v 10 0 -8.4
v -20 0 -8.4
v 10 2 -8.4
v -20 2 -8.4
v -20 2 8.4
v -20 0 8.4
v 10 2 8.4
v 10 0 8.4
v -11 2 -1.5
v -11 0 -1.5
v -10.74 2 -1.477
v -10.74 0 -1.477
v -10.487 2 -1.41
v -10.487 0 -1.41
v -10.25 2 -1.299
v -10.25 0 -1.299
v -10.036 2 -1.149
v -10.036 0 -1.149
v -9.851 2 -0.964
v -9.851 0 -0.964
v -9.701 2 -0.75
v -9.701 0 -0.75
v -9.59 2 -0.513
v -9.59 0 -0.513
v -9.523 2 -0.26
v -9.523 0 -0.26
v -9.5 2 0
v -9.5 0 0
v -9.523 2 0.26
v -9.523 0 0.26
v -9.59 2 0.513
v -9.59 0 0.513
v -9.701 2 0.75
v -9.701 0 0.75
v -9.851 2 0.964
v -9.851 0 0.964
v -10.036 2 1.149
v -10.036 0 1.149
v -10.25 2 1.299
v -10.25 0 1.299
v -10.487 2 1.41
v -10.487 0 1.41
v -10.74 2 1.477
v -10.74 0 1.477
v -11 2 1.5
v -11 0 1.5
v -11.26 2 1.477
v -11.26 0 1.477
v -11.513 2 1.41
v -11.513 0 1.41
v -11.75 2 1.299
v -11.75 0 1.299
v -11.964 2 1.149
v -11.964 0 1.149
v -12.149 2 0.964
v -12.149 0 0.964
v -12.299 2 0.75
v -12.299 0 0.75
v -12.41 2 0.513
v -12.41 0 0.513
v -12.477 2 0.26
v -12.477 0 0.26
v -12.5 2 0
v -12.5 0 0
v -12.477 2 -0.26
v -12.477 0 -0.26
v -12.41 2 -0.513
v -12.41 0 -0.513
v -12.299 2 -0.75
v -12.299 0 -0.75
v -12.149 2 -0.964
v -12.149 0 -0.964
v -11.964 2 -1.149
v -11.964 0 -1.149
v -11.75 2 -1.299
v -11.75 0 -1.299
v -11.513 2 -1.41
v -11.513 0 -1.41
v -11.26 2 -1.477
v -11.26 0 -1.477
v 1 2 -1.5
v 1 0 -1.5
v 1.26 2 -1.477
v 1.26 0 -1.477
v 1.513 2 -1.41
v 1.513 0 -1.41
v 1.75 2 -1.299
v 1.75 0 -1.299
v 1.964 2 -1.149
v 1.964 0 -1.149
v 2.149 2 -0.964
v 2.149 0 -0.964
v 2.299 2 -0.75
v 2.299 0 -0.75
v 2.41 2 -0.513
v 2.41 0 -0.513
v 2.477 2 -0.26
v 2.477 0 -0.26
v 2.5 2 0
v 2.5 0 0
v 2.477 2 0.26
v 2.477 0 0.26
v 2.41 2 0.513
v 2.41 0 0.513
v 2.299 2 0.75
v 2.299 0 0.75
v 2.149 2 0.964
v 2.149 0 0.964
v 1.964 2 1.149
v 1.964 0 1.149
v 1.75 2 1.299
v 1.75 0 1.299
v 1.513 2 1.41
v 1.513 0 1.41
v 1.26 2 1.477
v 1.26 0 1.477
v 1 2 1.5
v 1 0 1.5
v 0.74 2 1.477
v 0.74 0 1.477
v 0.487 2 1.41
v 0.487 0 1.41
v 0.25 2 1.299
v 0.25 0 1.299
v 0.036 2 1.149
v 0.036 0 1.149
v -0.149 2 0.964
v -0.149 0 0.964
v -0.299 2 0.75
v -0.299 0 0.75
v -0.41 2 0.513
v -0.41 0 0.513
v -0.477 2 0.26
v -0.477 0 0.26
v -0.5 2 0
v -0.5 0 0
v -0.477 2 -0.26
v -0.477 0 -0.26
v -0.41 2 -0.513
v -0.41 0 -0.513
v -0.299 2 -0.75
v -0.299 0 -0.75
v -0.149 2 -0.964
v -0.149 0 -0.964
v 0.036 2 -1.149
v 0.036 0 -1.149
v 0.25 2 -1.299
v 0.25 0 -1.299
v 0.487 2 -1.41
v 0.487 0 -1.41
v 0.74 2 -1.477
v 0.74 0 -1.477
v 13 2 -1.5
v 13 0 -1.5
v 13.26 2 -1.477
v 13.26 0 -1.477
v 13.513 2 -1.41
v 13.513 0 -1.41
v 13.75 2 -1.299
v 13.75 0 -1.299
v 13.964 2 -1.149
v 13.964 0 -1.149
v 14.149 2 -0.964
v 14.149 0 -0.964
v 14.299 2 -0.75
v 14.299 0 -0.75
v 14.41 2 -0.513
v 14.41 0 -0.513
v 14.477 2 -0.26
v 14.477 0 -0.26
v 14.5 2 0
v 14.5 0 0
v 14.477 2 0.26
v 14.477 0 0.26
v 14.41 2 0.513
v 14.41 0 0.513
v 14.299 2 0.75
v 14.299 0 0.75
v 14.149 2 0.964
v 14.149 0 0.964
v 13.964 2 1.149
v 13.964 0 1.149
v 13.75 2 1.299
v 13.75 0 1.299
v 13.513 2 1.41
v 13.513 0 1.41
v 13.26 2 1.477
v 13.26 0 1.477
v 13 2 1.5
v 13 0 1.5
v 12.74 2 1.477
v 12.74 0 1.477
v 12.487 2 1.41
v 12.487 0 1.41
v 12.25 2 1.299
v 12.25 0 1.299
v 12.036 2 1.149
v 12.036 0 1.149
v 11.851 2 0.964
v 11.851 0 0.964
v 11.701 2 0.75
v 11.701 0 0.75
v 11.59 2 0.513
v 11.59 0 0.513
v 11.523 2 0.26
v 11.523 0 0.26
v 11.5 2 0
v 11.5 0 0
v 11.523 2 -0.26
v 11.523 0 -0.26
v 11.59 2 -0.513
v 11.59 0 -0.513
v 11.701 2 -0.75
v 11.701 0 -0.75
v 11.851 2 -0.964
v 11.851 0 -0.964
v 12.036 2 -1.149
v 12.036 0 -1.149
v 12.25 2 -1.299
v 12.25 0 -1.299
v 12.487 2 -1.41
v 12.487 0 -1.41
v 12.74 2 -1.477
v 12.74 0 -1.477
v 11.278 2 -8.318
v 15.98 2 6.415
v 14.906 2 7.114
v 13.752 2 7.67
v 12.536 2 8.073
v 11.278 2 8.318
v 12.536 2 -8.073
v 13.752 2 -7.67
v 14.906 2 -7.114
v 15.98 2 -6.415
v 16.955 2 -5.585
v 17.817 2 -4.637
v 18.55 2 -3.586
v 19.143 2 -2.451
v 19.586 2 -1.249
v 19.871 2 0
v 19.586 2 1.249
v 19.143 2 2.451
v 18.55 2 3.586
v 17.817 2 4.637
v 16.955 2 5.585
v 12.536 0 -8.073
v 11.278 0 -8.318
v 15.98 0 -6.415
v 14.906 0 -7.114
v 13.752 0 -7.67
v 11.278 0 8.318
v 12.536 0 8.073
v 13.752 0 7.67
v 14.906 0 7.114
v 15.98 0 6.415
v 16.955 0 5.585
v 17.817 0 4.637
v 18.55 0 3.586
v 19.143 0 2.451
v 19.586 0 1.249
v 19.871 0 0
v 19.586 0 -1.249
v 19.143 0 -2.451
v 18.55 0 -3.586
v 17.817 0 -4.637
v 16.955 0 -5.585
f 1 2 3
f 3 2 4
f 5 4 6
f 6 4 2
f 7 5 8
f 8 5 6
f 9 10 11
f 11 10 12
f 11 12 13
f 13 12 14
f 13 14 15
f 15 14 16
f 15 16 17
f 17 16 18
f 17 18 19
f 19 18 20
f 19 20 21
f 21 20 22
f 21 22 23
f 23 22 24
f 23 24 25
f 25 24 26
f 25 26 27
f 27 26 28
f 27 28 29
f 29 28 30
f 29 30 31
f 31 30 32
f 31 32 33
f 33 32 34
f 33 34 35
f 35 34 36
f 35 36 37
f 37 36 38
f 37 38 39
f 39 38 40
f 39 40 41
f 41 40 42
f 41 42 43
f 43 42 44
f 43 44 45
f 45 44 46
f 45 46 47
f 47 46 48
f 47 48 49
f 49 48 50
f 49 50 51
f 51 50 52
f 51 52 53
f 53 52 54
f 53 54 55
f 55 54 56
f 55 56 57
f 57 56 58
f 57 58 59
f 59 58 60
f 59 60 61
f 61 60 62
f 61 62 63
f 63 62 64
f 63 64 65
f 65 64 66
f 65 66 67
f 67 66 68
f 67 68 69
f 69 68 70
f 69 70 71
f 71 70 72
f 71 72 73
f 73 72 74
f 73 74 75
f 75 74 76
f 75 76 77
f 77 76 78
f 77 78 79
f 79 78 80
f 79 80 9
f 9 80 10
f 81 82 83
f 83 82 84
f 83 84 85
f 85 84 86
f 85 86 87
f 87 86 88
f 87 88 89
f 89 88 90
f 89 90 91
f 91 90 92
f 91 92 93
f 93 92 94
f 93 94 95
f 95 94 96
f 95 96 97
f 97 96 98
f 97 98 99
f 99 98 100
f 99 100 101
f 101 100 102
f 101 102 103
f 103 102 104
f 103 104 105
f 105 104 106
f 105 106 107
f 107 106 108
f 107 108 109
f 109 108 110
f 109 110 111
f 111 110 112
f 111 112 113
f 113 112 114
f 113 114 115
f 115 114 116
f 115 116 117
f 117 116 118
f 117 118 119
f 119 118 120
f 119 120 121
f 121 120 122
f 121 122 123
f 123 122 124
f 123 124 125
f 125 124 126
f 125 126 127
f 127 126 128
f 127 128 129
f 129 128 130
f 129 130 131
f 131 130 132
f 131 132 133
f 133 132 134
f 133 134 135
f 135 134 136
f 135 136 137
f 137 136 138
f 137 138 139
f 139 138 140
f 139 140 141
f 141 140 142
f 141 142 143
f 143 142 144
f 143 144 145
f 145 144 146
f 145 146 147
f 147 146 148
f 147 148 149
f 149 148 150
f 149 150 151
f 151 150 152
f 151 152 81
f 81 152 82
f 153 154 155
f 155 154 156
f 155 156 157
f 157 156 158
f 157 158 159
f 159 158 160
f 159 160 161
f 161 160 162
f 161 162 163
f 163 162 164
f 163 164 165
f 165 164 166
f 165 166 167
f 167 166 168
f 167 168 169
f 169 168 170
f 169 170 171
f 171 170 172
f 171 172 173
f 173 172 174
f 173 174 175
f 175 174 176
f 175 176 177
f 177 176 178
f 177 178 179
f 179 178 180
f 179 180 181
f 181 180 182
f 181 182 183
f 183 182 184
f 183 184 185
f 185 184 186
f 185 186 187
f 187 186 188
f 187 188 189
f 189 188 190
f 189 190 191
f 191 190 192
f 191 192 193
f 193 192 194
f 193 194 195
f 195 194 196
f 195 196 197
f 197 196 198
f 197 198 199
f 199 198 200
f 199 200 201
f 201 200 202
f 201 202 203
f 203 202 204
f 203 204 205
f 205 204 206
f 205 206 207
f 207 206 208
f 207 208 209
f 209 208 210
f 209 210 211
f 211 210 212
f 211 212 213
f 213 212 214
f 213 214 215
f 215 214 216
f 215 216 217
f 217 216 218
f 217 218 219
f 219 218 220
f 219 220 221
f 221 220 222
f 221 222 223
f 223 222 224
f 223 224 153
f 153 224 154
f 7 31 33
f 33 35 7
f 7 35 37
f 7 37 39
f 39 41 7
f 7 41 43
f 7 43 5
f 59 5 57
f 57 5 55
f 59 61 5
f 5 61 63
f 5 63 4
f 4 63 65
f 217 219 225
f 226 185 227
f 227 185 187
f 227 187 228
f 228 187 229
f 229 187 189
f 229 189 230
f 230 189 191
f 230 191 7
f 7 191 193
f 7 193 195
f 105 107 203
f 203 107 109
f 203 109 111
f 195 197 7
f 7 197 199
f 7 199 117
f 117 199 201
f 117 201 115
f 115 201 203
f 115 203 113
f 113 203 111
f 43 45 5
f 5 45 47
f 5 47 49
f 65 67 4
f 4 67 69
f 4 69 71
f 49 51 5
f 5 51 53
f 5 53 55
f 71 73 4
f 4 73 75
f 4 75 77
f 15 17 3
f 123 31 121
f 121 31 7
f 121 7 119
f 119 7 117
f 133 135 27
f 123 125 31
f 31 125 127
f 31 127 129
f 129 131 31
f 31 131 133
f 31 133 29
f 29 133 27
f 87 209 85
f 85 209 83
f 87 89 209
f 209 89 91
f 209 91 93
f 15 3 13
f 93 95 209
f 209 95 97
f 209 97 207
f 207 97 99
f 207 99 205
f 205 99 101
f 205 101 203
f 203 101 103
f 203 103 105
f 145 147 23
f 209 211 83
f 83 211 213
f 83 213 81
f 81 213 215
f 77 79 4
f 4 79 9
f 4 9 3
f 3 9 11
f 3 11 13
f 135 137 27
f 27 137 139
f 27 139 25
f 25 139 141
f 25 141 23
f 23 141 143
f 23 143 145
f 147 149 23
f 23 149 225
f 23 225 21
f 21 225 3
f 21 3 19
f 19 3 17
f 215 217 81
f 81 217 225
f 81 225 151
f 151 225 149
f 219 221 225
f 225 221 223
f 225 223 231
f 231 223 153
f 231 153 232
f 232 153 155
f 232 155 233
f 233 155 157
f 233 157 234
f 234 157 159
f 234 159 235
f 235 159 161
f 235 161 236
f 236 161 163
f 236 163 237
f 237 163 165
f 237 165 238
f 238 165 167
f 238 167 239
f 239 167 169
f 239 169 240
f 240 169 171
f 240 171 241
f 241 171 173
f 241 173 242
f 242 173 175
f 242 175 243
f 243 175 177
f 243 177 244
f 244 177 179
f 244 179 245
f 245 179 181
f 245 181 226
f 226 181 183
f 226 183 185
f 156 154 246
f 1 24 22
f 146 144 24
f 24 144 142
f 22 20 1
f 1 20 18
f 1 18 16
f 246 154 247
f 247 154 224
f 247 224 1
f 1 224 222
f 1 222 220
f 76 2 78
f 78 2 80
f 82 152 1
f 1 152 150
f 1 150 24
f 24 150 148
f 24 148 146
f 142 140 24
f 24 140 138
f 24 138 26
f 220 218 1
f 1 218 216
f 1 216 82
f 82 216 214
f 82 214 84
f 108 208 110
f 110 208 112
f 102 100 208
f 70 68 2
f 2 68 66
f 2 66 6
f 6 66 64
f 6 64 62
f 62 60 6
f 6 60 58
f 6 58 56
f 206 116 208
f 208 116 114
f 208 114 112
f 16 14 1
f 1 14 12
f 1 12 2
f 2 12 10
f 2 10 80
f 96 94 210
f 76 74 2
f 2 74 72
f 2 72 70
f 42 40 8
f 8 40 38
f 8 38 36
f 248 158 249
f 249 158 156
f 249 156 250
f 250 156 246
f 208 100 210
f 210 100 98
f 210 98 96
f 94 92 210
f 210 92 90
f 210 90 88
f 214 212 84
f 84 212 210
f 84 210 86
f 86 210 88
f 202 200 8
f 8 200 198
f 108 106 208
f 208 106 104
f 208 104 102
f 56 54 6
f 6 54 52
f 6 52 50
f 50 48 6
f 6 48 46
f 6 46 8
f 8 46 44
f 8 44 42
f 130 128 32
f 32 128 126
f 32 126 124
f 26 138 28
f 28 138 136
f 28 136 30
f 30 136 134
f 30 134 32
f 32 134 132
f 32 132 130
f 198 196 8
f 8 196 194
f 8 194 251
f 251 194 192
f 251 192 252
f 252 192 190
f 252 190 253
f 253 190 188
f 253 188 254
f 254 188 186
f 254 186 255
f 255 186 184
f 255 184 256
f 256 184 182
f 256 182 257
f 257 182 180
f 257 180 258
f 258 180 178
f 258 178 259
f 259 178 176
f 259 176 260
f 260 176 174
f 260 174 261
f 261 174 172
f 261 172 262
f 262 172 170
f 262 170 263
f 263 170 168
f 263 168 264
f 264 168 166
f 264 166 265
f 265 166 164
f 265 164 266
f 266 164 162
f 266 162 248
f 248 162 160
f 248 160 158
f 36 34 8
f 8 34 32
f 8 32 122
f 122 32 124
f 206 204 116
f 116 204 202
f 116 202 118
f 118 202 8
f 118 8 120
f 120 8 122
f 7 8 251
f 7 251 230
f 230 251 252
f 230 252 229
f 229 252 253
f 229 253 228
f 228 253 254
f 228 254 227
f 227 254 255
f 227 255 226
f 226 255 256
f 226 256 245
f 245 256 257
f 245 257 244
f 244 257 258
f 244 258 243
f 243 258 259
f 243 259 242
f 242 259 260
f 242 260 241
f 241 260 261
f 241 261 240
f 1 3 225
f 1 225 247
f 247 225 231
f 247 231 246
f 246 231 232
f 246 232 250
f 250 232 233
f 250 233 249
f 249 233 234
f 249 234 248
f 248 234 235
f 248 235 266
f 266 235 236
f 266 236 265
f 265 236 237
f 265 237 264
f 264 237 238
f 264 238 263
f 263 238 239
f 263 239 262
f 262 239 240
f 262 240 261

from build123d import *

# Parameters (mm, degrees)
SKETCH1_W           = 40
SKETCH1_H           = 16.8
SKETCH1_R           = 1.5
BOSS_EXTRUDE1_DEPTH = 2
FILLET1_R           = 10


with BuildPart() as part:
    # Sketch1 → Boss-Extrude1 (new body)
    with BuildSketch(Plane(origin=(0, 0, 0), x_dir=(1, 0, 0), z_dir=(0, 1, 0))):
        Rectangle(SKETCH1_W, SKETCH1_H)
        with Locations(Location((-11, 0, 0), (0, 0, 270))):
            Circle(SKETCH1_R, mode=Mode.SUBTRACT)
        with Locations(Location((1, 0, 0), (0, 0, 270))):
            Circle(SKETCH1_R, mode=Mode.SUBTRACT)
        with Locations(Location((13, 0, 0), (0, 0, 270))):
            Circle(SKETCH1_R, mode=Mode.SUBTRACT)
    extrude(amount=BOSS_EXTRUDE1_DEPTH)

    # Fillet1
    # the kernel refuses this fillet: 10 mm, written as the material it takes off along each edge
    with BuildSketch(Plane(origin=(20, -25, -8.4), x_dir=(0, 0, 1), z_dir=(0, 1, 0)), Plane(origin=(20, -25, 8.4), x_dir=(-1, 0, 0), z_dir=(0, 1, 0))) as fillet1_piece_1:
        with BuildLine():
            CenterArc((FILLET1_R, -FILLET1_R), FILLET1_R, 90, 90)
            Line((0, -FILLET1_R), (0, 0))
            Line((0, 0), (FILLET1_R, 0))
        make_face()
    extrude(amount=52, mode=Mode.SUBTRACT)


solid = part.part
